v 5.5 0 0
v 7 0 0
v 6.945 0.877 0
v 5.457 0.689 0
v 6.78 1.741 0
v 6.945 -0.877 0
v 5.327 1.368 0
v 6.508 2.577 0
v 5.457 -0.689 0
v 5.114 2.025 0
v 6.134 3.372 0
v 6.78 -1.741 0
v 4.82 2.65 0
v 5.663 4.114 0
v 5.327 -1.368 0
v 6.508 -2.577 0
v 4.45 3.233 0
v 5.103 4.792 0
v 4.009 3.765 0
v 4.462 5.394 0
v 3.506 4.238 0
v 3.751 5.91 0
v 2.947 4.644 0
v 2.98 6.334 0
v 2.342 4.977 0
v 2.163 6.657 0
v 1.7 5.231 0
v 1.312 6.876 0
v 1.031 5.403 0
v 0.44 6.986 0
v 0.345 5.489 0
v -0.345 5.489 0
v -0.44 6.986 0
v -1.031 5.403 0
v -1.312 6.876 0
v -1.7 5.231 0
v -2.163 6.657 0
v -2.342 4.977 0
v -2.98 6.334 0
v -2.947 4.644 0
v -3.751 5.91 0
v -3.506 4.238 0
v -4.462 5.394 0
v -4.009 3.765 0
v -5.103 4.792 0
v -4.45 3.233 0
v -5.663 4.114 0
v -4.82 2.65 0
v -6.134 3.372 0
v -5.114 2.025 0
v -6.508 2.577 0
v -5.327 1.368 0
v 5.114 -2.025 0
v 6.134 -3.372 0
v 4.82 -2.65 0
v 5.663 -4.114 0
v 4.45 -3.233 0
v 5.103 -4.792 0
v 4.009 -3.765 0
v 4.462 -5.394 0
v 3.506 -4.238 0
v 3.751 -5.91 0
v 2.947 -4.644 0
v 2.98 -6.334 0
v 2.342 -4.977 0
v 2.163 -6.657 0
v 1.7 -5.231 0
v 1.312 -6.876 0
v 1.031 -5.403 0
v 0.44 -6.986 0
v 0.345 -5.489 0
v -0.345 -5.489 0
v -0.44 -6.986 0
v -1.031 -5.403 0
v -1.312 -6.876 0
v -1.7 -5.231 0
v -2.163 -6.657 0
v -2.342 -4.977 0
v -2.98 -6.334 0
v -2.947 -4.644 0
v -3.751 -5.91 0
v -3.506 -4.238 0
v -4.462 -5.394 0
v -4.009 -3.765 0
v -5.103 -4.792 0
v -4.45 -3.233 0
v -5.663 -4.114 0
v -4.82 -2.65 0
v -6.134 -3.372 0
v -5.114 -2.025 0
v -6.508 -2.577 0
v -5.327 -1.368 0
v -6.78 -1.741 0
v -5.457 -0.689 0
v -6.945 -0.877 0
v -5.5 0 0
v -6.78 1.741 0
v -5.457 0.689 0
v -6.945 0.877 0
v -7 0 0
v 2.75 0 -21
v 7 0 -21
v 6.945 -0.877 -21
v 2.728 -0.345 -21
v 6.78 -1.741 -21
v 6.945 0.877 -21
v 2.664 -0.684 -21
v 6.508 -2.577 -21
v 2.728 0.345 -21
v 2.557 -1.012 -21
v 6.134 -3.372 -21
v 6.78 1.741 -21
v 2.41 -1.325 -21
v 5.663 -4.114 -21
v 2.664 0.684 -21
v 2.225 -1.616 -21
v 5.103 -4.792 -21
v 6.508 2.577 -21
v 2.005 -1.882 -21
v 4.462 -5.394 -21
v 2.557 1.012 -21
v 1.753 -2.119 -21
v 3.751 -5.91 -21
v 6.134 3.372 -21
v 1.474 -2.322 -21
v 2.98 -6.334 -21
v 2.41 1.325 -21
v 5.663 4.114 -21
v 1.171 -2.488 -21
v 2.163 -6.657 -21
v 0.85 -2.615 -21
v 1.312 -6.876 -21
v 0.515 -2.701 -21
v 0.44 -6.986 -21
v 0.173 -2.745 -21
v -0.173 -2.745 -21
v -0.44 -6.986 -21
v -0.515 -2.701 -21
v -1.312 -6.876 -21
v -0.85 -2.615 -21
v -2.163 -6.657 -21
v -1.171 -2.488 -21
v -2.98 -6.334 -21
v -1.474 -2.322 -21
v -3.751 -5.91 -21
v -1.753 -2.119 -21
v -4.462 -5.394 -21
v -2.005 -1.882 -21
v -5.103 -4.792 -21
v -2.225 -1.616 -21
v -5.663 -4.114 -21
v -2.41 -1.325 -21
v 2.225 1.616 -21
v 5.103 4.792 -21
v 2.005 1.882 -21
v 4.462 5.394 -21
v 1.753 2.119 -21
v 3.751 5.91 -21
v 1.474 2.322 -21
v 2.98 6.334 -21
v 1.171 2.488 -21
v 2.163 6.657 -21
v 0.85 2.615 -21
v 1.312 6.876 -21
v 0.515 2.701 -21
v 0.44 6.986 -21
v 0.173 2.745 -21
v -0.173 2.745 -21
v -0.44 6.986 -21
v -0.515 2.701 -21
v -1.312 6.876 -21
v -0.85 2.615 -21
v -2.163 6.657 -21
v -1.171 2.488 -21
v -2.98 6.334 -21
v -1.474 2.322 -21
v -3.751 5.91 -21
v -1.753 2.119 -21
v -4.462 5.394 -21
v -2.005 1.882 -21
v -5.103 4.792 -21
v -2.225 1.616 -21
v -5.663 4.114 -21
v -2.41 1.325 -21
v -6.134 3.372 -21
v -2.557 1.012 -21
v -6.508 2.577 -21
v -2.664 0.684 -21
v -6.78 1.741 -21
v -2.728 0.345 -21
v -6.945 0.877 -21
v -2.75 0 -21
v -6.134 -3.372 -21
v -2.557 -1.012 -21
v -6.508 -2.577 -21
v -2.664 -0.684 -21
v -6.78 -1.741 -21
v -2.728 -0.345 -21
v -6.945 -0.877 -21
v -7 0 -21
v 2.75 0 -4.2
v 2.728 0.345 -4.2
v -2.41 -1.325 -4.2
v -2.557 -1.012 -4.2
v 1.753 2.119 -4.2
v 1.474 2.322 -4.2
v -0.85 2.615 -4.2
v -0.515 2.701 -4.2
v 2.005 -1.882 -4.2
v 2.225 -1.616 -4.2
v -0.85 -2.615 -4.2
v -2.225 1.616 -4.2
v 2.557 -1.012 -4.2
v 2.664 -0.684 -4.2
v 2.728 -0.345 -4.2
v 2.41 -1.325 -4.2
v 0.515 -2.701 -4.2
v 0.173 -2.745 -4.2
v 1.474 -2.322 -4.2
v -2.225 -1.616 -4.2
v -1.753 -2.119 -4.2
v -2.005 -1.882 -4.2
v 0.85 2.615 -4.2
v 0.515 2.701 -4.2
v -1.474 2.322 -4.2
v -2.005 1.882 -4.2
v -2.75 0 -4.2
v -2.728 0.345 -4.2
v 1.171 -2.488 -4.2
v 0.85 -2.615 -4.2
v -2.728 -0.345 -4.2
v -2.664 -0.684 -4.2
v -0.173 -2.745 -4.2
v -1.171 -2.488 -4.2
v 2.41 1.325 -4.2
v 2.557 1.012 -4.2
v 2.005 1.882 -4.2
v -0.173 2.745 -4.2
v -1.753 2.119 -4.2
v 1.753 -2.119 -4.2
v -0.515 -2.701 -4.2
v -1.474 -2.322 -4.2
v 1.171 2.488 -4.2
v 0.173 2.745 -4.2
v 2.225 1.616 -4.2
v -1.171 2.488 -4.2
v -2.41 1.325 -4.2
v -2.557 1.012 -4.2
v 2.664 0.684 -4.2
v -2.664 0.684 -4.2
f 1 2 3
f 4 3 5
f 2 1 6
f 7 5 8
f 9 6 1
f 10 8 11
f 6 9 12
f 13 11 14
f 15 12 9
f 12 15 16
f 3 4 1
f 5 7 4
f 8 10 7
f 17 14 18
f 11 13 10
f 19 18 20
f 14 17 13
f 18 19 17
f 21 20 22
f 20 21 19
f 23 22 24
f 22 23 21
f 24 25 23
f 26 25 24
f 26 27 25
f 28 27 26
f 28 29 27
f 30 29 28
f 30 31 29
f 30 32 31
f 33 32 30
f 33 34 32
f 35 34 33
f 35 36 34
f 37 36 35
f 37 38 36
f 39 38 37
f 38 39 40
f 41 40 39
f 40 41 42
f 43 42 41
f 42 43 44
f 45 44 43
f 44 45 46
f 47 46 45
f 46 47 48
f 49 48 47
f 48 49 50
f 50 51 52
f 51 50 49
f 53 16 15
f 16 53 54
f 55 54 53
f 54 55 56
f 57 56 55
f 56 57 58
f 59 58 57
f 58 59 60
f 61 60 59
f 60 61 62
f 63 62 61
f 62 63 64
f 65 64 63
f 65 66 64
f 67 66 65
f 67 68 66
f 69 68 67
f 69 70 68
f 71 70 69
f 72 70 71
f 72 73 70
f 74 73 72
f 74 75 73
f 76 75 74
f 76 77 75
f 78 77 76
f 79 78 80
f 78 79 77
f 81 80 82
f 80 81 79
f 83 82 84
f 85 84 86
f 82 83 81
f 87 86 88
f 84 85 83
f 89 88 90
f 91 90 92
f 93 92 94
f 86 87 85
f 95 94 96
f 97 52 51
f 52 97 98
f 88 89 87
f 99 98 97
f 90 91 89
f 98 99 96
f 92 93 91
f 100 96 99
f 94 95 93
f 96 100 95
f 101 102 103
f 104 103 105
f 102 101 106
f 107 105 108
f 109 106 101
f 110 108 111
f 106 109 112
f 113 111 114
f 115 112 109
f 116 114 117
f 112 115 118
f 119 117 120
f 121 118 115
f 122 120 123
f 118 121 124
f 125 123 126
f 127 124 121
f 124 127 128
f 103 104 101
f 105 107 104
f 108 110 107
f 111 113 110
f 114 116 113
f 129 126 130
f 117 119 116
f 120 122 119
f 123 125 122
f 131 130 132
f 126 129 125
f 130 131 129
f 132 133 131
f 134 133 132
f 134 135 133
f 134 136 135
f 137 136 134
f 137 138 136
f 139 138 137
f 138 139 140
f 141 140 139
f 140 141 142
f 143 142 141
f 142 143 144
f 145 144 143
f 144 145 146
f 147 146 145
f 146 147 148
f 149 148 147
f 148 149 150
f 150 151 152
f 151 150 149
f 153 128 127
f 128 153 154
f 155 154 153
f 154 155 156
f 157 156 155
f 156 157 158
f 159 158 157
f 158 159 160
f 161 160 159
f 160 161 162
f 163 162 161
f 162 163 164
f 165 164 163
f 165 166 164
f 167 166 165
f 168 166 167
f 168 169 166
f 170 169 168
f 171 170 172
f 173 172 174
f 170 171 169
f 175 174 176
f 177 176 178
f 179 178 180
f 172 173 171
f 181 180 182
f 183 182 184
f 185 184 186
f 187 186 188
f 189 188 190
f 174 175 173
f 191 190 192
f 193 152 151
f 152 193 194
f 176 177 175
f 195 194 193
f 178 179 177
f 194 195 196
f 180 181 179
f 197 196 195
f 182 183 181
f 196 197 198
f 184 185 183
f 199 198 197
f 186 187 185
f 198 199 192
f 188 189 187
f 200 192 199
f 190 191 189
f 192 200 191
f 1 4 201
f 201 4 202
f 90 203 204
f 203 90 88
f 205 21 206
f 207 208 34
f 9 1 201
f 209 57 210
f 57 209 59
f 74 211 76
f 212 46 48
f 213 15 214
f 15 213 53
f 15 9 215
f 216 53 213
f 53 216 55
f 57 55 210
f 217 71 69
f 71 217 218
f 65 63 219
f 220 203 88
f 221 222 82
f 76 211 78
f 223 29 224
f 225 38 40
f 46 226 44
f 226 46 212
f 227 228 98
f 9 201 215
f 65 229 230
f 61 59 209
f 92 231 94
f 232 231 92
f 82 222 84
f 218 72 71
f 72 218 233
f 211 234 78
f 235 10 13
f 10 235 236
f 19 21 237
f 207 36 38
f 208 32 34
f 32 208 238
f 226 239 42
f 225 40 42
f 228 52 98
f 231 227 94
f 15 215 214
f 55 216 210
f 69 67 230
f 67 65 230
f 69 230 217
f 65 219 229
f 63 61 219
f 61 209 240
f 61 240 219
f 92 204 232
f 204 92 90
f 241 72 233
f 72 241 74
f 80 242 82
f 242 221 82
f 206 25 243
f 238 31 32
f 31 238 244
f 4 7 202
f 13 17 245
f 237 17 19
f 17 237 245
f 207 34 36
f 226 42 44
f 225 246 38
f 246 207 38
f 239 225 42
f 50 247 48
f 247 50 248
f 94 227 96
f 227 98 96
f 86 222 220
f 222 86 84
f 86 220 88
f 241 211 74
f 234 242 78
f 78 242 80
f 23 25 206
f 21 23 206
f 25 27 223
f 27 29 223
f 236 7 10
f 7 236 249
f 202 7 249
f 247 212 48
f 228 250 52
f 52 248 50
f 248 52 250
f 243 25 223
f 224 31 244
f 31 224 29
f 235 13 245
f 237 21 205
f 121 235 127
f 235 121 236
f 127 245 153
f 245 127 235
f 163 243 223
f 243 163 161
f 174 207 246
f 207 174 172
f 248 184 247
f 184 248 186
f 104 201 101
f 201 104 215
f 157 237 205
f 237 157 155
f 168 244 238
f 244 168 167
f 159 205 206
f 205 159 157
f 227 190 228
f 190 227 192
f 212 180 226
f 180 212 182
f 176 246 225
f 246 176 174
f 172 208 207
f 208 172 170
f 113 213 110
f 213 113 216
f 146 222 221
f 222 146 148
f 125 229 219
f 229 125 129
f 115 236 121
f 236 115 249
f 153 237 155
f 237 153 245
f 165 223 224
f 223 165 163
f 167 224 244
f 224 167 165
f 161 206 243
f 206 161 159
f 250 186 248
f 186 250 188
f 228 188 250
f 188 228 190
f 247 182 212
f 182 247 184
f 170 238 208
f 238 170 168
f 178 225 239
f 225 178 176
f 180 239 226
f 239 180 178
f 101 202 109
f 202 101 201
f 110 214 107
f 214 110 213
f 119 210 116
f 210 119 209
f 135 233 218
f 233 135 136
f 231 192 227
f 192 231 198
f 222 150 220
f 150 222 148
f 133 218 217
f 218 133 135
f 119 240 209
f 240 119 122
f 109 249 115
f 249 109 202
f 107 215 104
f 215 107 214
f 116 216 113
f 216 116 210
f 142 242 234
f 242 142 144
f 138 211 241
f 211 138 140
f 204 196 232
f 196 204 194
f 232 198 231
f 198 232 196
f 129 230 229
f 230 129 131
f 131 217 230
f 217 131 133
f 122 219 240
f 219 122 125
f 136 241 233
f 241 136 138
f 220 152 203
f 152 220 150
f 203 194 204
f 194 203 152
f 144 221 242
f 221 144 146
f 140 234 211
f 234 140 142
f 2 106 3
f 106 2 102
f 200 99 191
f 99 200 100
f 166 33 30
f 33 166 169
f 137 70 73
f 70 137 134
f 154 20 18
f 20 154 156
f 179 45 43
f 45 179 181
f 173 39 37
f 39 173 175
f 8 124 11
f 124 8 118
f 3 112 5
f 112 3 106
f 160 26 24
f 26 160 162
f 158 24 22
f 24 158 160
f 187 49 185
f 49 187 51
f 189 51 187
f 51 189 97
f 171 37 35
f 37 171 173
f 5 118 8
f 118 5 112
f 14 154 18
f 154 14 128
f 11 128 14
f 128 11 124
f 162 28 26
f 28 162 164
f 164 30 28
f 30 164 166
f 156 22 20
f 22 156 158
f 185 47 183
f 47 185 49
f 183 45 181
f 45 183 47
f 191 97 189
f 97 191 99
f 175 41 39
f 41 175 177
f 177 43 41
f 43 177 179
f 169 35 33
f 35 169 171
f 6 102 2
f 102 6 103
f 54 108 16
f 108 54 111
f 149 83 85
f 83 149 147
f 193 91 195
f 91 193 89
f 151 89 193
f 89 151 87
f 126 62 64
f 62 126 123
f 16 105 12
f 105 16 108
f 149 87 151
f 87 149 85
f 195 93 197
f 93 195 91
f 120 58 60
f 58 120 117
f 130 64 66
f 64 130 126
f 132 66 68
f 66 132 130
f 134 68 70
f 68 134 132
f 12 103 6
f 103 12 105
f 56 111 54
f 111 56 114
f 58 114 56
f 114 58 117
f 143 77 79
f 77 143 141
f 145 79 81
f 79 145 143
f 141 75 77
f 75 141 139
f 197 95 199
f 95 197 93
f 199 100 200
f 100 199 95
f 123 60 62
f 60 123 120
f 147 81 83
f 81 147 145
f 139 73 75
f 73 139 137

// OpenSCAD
$fn = 50;


difference() {
	union() {
		translate(v = [0, 0, -21.0000000000]) {
			cylinder(h = 21, r = 7.0000000000);
		}
		cylinder(h = 0, r = 17.0000000000);
	}
	union() {
		translate(v = [0, 0, 0]) {
			rotate(a = [0, 0, 0]) {
				difference() {
					union() {
						#translate(v = [0, 0, -21.0000000000]) {
							cylinder(h = 21, r = 2.2500000000);
						}
						#translate(v = [0, 0, -4.2000000000]) {
							cylinder(h = 4.2000000000, r = 7.0000000000, r1 = 2.7500000000, r2 = 5.5000000000);
						}
						#translate(v = [0, 0, -21.0000000000]) {
							cylinder(h = 21, r = 2.7500000000);
						}
						#translate(v = [0, 0, -21.0000000000]) {
							cylinder(h = 21, r = 2.2500000000);
						}
					}
					union();
				}
			}
		}
	}
}
